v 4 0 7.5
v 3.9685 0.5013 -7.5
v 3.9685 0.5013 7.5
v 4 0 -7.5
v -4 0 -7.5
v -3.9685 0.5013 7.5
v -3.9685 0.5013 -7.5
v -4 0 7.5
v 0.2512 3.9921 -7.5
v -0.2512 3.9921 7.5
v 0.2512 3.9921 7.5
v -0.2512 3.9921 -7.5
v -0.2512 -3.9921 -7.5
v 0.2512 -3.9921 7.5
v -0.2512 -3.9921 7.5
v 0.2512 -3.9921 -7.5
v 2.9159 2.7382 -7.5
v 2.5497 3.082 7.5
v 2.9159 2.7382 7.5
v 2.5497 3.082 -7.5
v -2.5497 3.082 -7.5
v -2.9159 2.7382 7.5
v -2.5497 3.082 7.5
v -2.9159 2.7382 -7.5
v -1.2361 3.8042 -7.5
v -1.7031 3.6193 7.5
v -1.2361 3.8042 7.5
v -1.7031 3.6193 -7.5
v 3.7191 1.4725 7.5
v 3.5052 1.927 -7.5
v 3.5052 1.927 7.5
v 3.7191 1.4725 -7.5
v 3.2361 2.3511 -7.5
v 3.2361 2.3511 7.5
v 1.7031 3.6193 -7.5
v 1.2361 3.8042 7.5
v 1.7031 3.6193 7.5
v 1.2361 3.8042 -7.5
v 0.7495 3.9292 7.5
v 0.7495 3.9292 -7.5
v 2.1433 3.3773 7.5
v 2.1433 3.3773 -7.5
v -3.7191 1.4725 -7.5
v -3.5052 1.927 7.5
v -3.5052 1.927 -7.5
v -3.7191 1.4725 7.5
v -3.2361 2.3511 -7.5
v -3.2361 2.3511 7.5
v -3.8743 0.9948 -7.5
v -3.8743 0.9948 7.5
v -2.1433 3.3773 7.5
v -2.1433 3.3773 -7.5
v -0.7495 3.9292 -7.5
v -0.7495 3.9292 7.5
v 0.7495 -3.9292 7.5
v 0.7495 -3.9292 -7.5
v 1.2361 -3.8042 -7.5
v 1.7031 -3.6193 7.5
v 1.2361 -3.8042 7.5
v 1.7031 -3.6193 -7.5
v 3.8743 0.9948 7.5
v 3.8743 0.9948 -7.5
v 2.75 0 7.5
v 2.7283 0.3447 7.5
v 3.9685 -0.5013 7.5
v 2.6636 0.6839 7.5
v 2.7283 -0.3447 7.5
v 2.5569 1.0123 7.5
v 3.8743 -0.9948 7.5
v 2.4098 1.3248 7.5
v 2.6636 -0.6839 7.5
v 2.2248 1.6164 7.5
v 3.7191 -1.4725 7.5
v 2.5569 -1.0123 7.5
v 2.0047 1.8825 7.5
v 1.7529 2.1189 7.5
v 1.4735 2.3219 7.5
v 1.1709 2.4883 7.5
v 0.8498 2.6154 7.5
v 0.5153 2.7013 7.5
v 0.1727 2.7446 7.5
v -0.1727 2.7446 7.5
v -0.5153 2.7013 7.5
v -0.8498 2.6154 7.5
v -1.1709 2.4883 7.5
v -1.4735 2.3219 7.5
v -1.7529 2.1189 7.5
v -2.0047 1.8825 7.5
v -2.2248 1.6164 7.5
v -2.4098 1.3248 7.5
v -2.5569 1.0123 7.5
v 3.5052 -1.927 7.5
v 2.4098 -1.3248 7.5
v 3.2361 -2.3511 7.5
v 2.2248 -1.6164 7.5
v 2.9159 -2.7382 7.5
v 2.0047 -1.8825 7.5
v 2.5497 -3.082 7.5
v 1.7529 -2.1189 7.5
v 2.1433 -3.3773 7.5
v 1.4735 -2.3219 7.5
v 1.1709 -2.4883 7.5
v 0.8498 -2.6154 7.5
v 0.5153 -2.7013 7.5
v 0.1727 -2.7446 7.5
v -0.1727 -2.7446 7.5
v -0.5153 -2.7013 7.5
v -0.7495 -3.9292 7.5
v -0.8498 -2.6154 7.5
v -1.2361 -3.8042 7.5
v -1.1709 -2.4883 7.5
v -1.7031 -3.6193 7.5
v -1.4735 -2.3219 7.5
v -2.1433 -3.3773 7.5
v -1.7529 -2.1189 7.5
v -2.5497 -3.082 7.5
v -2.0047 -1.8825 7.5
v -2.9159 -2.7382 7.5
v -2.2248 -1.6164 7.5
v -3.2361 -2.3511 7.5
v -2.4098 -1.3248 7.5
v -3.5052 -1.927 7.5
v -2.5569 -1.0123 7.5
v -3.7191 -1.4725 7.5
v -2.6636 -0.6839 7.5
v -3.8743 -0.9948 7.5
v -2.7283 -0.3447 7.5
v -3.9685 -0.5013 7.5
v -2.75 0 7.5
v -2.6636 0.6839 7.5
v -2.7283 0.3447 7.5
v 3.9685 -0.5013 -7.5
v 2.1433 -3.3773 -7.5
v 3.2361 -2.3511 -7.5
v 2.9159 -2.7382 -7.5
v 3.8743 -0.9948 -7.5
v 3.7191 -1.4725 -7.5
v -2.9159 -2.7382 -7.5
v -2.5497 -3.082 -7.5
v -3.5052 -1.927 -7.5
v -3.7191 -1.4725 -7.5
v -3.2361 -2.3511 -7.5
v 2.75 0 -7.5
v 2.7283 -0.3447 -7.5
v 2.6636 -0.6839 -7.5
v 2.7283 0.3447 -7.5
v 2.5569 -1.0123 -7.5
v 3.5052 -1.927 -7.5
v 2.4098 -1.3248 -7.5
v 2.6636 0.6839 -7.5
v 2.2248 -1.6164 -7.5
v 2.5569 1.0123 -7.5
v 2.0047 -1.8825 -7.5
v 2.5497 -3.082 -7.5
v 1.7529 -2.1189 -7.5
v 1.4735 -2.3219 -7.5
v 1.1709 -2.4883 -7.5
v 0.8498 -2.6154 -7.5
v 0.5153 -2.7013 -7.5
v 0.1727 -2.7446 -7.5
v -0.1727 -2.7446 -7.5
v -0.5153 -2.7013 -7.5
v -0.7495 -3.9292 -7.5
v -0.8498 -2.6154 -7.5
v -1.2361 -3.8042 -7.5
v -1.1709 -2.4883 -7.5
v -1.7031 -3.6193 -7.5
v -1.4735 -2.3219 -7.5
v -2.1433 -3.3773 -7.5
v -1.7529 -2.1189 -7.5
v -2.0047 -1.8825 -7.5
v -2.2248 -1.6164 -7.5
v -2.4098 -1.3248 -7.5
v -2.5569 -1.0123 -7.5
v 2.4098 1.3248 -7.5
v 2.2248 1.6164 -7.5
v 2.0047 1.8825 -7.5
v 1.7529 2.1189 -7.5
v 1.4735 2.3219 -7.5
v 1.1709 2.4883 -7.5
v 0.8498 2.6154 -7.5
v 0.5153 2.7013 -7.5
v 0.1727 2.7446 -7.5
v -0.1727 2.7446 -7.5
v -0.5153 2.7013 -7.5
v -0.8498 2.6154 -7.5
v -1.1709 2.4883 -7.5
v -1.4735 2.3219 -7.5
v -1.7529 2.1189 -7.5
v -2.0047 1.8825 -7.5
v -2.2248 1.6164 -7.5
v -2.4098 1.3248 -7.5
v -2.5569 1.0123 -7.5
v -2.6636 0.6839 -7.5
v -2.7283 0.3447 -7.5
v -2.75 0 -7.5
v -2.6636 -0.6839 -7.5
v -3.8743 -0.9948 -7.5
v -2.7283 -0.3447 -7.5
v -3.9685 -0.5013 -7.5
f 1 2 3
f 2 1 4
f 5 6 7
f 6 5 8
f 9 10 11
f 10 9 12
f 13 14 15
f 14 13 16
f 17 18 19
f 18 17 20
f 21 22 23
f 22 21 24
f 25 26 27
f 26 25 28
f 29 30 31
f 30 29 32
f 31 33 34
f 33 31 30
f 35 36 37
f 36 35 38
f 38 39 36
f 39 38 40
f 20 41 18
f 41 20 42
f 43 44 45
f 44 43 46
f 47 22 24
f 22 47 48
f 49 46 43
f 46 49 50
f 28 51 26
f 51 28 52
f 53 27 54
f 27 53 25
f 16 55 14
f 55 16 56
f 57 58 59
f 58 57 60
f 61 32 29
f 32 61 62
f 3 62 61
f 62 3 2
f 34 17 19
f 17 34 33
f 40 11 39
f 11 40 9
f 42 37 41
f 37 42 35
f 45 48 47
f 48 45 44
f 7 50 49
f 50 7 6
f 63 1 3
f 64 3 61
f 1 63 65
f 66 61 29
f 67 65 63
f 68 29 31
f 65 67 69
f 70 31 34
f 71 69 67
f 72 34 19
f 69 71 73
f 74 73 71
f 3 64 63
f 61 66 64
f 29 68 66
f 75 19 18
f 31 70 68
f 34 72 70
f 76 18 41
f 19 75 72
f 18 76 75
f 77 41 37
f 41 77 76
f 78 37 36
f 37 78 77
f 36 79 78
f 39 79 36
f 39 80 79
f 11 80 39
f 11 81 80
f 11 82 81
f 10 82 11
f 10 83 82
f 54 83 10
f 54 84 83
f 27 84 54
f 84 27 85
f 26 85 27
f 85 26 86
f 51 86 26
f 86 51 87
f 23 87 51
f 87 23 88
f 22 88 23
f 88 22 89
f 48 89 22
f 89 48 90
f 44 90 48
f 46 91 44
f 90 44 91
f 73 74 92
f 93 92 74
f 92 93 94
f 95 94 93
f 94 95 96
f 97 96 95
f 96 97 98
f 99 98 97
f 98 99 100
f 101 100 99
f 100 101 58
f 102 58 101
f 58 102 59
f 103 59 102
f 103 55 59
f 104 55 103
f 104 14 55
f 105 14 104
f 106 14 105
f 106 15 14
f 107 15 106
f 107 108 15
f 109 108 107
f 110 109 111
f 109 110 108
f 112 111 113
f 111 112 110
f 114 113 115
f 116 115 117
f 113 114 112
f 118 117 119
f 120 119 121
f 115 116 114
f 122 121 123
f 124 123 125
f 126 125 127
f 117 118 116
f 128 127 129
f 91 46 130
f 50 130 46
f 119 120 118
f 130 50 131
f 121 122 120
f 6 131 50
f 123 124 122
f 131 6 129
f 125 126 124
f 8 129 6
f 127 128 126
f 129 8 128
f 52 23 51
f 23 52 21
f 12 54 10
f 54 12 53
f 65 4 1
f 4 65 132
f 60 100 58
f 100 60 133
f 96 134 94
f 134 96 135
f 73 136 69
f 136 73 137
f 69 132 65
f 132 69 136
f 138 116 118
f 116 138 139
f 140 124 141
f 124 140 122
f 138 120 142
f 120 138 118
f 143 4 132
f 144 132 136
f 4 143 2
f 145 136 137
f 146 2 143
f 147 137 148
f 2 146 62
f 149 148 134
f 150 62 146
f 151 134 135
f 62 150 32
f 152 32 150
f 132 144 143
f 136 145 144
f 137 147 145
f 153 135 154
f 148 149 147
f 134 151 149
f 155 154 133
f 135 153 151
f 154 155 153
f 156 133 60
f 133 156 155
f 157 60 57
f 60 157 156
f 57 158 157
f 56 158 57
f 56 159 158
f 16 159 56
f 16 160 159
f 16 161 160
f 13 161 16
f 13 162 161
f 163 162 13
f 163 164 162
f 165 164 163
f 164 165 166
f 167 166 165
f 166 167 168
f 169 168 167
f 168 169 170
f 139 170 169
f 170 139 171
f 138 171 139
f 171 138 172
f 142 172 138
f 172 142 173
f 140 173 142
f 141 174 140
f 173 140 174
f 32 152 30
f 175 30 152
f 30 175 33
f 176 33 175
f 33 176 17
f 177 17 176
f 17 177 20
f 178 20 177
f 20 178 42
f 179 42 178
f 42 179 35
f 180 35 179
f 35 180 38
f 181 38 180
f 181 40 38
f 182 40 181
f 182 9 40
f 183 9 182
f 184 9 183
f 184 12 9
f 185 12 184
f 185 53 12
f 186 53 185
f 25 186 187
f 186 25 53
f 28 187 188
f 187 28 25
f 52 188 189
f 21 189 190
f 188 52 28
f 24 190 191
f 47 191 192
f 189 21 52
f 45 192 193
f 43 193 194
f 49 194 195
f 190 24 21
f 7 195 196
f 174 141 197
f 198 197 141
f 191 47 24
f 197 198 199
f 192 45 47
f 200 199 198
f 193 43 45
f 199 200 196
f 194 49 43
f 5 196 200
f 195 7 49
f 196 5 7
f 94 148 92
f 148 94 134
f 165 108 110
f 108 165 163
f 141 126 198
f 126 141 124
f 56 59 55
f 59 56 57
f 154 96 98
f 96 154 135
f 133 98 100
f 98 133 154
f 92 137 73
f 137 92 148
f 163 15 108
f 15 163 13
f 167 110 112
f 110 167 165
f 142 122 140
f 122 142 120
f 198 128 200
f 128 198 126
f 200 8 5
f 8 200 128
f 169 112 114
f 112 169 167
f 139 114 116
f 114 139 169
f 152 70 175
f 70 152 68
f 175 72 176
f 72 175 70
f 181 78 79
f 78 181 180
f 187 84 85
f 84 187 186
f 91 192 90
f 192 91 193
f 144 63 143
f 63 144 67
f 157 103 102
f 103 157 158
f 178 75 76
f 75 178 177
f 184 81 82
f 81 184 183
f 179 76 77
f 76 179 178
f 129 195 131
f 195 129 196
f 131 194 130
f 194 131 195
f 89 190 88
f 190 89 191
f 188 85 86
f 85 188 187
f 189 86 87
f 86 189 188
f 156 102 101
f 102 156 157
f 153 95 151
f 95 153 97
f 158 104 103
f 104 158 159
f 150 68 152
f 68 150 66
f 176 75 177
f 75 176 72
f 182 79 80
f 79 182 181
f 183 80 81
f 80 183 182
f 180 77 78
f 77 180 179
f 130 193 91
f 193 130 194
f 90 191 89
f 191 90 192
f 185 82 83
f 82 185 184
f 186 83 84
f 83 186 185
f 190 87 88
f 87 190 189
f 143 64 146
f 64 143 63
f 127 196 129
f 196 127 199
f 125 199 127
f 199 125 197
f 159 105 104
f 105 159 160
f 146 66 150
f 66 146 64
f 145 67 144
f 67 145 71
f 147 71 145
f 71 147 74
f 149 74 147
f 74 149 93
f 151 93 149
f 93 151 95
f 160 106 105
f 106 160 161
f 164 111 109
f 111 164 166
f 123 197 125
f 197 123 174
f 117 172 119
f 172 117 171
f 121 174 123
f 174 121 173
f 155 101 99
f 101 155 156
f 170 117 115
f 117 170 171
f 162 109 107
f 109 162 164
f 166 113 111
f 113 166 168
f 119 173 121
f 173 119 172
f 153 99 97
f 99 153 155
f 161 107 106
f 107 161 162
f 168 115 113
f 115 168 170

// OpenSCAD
$fn = 50;


difference() {
	union() {
		translate(v = [0, 0, -7.5000000000]) {
			cylinder(h = 15, r = 4.0000000000);
		}
	}
	union() {
		translate(v = [0, 0, -100.0000000000]) {
			cylinder(h = 200, r = 2.7500000000);
		}
	}
}
